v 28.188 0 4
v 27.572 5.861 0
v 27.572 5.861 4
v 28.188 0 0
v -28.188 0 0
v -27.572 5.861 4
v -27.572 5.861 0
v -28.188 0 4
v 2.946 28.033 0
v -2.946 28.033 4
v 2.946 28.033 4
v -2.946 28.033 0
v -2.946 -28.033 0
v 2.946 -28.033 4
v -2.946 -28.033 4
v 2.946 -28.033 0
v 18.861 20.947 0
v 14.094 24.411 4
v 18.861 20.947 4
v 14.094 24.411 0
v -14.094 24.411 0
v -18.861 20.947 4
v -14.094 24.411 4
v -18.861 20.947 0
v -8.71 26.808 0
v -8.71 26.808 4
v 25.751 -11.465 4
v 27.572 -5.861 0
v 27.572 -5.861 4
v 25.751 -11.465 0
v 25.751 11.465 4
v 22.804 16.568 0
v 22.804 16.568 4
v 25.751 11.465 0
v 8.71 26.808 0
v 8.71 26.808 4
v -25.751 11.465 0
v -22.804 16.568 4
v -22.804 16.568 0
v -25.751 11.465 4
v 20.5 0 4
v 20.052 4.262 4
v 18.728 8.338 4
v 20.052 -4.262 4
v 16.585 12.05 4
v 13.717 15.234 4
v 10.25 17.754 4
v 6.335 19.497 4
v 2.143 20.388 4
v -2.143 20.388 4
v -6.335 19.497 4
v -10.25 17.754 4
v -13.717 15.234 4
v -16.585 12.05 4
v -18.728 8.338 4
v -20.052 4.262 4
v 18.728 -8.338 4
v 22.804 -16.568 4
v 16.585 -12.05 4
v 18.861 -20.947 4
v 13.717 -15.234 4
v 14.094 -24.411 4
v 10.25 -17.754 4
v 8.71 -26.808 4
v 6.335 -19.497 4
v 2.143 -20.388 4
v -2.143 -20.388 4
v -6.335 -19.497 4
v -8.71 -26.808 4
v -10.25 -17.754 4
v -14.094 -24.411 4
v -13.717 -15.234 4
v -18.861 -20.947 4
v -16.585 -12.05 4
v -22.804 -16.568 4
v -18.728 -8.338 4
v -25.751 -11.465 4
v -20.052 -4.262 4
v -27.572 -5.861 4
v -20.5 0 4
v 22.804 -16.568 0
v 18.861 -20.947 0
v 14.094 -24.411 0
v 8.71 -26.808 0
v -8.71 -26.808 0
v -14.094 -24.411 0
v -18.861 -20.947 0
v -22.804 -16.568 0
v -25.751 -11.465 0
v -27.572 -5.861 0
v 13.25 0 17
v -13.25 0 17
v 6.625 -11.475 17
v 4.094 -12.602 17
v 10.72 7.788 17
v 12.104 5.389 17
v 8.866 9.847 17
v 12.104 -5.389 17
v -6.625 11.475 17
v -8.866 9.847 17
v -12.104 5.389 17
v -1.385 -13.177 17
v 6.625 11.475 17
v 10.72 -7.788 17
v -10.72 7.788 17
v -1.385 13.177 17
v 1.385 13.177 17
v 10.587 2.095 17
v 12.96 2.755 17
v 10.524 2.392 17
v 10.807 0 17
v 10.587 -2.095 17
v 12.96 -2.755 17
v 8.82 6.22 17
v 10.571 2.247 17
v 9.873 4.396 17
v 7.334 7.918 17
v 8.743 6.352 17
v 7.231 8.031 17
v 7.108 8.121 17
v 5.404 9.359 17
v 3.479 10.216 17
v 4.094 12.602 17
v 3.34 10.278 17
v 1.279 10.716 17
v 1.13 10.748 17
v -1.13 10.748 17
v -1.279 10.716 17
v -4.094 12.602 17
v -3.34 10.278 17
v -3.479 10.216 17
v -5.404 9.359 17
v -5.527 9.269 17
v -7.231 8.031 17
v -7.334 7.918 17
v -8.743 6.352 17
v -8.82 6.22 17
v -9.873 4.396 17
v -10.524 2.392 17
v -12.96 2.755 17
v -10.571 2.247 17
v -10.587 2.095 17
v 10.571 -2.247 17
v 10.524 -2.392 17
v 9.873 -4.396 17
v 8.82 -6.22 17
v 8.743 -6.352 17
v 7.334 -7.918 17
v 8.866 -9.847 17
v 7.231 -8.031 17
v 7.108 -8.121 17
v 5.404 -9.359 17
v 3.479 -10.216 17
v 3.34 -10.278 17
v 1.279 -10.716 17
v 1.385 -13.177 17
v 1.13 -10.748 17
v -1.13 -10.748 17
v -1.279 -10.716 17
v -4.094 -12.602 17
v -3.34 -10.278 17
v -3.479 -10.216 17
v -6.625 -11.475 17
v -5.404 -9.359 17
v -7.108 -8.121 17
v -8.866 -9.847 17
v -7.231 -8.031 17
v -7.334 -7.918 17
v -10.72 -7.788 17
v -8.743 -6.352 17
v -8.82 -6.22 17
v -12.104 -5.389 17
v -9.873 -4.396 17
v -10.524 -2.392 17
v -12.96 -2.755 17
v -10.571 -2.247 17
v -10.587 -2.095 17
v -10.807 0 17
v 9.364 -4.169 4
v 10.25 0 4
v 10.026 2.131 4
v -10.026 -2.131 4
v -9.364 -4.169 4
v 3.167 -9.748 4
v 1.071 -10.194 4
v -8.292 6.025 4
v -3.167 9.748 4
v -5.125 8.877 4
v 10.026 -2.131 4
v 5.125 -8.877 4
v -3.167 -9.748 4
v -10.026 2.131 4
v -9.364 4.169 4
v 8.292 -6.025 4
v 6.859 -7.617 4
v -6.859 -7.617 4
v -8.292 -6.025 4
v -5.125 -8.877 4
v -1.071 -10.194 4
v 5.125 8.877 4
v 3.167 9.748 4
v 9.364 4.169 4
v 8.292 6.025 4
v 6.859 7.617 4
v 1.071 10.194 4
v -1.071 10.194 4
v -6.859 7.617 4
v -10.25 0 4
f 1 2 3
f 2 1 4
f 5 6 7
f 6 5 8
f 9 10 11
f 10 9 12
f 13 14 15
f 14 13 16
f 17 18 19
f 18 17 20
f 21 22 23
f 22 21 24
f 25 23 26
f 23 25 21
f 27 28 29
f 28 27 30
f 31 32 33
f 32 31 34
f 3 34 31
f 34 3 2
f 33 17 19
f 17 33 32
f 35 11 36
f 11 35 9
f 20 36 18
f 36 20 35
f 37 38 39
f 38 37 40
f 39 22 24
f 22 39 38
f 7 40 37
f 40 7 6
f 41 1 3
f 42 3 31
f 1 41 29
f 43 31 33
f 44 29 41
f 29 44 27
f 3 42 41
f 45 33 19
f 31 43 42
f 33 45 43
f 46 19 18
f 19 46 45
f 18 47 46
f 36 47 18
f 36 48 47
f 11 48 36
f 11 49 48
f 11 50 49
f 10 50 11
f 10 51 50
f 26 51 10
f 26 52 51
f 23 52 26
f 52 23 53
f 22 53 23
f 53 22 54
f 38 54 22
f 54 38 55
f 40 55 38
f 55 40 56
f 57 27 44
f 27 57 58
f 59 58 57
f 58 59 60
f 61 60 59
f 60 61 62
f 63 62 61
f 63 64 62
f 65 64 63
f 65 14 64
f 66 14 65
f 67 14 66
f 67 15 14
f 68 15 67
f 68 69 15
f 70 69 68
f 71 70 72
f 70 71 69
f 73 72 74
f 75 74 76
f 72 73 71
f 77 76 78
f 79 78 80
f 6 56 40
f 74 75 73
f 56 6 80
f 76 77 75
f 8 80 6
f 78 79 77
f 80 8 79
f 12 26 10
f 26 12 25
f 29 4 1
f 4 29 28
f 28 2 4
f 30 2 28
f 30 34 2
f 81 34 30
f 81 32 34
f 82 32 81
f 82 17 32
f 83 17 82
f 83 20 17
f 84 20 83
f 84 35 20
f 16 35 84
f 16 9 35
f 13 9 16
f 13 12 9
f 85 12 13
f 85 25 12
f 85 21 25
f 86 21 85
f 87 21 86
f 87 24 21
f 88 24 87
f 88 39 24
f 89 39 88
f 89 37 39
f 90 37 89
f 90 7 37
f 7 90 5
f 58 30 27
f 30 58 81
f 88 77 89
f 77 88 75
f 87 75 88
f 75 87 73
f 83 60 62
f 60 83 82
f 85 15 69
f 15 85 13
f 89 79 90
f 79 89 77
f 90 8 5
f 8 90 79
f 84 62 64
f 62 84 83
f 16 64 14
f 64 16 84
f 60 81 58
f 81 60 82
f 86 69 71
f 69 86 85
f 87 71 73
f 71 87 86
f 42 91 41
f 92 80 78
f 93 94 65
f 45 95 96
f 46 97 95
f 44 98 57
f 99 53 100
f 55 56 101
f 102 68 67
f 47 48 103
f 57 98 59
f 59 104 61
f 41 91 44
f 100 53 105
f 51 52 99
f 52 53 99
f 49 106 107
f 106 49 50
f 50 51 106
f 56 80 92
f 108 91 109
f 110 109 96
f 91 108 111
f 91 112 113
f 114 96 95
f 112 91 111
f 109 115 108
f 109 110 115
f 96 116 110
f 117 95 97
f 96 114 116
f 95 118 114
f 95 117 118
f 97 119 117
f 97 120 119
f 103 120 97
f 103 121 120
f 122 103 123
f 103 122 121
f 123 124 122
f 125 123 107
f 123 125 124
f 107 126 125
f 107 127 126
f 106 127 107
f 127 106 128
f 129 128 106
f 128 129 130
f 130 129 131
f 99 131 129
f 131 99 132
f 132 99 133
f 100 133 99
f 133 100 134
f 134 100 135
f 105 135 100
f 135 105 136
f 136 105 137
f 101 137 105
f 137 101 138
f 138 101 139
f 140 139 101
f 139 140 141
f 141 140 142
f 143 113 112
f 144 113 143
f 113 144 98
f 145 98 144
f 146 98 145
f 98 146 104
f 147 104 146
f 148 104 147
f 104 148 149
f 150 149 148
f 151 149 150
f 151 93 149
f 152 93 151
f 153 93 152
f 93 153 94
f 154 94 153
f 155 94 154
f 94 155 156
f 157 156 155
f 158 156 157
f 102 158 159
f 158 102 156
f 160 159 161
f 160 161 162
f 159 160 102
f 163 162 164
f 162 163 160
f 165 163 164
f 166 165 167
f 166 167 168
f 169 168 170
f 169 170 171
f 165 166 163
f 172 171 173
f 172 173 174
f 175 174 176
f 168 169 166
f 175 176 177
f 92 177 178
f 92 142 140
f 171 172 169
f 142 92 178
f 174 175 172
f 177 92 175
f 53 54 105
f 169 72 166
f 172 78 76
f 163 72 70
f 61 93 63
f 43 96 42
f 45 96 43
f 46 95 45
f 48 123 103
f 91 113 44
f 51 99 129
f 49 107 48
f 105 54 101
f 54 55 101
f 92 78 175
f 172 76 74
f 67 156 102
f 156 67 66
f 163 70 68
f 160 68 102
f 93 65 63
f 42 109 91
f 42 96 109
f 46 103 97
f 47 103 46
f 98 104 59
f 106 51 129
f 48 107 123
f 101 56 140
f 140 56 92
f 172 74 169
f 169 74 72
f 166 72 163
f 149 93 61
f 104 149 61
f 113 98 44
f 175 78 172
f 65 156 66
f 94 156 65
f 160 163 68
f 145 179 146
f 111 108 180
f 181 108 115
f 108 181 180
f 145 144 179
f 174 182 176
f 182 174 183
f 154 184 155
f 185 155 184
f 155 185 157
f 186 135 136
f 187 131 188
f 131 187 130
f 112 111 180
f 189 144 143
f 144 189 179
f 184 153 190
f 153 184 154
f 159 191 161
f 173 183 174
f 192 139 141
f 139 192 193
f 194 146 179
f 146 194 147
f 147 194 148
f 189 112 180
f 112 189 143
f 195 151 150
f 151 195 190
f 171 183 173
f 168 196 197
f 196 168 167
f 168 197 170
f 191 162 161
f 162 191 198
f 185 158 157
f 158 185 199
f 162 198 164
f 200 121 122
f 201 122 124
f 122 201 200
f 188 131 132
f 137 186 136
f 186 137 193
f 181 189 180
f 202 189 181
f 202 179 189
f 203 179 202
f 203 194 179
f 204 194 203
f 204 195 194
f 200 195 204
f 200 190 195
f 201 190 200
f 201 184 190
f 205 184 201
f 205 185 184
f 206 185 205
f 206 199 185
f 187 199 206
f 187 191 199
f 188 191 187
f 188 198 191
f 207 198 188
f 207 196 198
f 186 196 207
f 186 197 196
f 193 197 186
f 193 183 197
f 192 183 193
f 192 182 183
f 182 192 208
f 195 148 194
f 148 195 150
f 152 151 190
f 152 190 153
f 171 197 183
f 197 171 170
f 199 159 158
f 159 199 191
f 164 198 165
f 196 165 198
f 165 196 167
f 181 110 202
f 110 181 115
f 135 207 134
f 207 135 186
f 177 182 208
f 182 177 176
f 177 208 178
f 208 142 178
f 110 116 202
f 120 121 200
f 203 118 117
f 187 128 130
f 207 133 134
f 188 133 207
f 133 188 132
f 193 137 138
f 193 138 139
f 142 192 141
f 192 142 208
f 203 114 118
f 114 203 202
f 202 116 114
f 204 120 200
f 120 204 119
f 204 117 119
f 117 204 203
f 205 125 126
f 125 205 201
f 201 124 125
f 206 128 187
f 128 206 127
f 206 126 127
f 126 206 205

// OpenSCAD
//Diameter of vial
tool_diameter = 20.5; // Container Store 4 dram glass vial SKU#: 688480
tool_rad = tool_diameter / 2;
//Base is this many times larger than radius of vial
base_multiplier = 2.75;
//Height of base (bottom disk)
base_height = 4;
//Height of conical cap
cap_height = 13;
//Cap base is this many times larger than radius of vial
cap_base_multiplier = 2;
//Width of the wall at top of cap
cap_top_wall_width = 3;
//Added space to adjust for a tighter or looser fit
tool_space_margin = 0.6;

//$fn=60;
difference()
{
	union()
	{
		//Base
		cylinder(r=tool_rad*base_multiplier, h=base_height);

		//Cap
        translate([0,0,base_height])
		cylinder(h=cap_height,
            r1=tool_rad*cap_base_multiplier,
            r2=tool_rad+cap_top_wall_width);
	}

	//Top Opening
	translate([0,0,base_height])
	cylinder(r1=tool_rad,
        r2=tool_rad+tool_space_margin,
        h=cap_height+1);
}
